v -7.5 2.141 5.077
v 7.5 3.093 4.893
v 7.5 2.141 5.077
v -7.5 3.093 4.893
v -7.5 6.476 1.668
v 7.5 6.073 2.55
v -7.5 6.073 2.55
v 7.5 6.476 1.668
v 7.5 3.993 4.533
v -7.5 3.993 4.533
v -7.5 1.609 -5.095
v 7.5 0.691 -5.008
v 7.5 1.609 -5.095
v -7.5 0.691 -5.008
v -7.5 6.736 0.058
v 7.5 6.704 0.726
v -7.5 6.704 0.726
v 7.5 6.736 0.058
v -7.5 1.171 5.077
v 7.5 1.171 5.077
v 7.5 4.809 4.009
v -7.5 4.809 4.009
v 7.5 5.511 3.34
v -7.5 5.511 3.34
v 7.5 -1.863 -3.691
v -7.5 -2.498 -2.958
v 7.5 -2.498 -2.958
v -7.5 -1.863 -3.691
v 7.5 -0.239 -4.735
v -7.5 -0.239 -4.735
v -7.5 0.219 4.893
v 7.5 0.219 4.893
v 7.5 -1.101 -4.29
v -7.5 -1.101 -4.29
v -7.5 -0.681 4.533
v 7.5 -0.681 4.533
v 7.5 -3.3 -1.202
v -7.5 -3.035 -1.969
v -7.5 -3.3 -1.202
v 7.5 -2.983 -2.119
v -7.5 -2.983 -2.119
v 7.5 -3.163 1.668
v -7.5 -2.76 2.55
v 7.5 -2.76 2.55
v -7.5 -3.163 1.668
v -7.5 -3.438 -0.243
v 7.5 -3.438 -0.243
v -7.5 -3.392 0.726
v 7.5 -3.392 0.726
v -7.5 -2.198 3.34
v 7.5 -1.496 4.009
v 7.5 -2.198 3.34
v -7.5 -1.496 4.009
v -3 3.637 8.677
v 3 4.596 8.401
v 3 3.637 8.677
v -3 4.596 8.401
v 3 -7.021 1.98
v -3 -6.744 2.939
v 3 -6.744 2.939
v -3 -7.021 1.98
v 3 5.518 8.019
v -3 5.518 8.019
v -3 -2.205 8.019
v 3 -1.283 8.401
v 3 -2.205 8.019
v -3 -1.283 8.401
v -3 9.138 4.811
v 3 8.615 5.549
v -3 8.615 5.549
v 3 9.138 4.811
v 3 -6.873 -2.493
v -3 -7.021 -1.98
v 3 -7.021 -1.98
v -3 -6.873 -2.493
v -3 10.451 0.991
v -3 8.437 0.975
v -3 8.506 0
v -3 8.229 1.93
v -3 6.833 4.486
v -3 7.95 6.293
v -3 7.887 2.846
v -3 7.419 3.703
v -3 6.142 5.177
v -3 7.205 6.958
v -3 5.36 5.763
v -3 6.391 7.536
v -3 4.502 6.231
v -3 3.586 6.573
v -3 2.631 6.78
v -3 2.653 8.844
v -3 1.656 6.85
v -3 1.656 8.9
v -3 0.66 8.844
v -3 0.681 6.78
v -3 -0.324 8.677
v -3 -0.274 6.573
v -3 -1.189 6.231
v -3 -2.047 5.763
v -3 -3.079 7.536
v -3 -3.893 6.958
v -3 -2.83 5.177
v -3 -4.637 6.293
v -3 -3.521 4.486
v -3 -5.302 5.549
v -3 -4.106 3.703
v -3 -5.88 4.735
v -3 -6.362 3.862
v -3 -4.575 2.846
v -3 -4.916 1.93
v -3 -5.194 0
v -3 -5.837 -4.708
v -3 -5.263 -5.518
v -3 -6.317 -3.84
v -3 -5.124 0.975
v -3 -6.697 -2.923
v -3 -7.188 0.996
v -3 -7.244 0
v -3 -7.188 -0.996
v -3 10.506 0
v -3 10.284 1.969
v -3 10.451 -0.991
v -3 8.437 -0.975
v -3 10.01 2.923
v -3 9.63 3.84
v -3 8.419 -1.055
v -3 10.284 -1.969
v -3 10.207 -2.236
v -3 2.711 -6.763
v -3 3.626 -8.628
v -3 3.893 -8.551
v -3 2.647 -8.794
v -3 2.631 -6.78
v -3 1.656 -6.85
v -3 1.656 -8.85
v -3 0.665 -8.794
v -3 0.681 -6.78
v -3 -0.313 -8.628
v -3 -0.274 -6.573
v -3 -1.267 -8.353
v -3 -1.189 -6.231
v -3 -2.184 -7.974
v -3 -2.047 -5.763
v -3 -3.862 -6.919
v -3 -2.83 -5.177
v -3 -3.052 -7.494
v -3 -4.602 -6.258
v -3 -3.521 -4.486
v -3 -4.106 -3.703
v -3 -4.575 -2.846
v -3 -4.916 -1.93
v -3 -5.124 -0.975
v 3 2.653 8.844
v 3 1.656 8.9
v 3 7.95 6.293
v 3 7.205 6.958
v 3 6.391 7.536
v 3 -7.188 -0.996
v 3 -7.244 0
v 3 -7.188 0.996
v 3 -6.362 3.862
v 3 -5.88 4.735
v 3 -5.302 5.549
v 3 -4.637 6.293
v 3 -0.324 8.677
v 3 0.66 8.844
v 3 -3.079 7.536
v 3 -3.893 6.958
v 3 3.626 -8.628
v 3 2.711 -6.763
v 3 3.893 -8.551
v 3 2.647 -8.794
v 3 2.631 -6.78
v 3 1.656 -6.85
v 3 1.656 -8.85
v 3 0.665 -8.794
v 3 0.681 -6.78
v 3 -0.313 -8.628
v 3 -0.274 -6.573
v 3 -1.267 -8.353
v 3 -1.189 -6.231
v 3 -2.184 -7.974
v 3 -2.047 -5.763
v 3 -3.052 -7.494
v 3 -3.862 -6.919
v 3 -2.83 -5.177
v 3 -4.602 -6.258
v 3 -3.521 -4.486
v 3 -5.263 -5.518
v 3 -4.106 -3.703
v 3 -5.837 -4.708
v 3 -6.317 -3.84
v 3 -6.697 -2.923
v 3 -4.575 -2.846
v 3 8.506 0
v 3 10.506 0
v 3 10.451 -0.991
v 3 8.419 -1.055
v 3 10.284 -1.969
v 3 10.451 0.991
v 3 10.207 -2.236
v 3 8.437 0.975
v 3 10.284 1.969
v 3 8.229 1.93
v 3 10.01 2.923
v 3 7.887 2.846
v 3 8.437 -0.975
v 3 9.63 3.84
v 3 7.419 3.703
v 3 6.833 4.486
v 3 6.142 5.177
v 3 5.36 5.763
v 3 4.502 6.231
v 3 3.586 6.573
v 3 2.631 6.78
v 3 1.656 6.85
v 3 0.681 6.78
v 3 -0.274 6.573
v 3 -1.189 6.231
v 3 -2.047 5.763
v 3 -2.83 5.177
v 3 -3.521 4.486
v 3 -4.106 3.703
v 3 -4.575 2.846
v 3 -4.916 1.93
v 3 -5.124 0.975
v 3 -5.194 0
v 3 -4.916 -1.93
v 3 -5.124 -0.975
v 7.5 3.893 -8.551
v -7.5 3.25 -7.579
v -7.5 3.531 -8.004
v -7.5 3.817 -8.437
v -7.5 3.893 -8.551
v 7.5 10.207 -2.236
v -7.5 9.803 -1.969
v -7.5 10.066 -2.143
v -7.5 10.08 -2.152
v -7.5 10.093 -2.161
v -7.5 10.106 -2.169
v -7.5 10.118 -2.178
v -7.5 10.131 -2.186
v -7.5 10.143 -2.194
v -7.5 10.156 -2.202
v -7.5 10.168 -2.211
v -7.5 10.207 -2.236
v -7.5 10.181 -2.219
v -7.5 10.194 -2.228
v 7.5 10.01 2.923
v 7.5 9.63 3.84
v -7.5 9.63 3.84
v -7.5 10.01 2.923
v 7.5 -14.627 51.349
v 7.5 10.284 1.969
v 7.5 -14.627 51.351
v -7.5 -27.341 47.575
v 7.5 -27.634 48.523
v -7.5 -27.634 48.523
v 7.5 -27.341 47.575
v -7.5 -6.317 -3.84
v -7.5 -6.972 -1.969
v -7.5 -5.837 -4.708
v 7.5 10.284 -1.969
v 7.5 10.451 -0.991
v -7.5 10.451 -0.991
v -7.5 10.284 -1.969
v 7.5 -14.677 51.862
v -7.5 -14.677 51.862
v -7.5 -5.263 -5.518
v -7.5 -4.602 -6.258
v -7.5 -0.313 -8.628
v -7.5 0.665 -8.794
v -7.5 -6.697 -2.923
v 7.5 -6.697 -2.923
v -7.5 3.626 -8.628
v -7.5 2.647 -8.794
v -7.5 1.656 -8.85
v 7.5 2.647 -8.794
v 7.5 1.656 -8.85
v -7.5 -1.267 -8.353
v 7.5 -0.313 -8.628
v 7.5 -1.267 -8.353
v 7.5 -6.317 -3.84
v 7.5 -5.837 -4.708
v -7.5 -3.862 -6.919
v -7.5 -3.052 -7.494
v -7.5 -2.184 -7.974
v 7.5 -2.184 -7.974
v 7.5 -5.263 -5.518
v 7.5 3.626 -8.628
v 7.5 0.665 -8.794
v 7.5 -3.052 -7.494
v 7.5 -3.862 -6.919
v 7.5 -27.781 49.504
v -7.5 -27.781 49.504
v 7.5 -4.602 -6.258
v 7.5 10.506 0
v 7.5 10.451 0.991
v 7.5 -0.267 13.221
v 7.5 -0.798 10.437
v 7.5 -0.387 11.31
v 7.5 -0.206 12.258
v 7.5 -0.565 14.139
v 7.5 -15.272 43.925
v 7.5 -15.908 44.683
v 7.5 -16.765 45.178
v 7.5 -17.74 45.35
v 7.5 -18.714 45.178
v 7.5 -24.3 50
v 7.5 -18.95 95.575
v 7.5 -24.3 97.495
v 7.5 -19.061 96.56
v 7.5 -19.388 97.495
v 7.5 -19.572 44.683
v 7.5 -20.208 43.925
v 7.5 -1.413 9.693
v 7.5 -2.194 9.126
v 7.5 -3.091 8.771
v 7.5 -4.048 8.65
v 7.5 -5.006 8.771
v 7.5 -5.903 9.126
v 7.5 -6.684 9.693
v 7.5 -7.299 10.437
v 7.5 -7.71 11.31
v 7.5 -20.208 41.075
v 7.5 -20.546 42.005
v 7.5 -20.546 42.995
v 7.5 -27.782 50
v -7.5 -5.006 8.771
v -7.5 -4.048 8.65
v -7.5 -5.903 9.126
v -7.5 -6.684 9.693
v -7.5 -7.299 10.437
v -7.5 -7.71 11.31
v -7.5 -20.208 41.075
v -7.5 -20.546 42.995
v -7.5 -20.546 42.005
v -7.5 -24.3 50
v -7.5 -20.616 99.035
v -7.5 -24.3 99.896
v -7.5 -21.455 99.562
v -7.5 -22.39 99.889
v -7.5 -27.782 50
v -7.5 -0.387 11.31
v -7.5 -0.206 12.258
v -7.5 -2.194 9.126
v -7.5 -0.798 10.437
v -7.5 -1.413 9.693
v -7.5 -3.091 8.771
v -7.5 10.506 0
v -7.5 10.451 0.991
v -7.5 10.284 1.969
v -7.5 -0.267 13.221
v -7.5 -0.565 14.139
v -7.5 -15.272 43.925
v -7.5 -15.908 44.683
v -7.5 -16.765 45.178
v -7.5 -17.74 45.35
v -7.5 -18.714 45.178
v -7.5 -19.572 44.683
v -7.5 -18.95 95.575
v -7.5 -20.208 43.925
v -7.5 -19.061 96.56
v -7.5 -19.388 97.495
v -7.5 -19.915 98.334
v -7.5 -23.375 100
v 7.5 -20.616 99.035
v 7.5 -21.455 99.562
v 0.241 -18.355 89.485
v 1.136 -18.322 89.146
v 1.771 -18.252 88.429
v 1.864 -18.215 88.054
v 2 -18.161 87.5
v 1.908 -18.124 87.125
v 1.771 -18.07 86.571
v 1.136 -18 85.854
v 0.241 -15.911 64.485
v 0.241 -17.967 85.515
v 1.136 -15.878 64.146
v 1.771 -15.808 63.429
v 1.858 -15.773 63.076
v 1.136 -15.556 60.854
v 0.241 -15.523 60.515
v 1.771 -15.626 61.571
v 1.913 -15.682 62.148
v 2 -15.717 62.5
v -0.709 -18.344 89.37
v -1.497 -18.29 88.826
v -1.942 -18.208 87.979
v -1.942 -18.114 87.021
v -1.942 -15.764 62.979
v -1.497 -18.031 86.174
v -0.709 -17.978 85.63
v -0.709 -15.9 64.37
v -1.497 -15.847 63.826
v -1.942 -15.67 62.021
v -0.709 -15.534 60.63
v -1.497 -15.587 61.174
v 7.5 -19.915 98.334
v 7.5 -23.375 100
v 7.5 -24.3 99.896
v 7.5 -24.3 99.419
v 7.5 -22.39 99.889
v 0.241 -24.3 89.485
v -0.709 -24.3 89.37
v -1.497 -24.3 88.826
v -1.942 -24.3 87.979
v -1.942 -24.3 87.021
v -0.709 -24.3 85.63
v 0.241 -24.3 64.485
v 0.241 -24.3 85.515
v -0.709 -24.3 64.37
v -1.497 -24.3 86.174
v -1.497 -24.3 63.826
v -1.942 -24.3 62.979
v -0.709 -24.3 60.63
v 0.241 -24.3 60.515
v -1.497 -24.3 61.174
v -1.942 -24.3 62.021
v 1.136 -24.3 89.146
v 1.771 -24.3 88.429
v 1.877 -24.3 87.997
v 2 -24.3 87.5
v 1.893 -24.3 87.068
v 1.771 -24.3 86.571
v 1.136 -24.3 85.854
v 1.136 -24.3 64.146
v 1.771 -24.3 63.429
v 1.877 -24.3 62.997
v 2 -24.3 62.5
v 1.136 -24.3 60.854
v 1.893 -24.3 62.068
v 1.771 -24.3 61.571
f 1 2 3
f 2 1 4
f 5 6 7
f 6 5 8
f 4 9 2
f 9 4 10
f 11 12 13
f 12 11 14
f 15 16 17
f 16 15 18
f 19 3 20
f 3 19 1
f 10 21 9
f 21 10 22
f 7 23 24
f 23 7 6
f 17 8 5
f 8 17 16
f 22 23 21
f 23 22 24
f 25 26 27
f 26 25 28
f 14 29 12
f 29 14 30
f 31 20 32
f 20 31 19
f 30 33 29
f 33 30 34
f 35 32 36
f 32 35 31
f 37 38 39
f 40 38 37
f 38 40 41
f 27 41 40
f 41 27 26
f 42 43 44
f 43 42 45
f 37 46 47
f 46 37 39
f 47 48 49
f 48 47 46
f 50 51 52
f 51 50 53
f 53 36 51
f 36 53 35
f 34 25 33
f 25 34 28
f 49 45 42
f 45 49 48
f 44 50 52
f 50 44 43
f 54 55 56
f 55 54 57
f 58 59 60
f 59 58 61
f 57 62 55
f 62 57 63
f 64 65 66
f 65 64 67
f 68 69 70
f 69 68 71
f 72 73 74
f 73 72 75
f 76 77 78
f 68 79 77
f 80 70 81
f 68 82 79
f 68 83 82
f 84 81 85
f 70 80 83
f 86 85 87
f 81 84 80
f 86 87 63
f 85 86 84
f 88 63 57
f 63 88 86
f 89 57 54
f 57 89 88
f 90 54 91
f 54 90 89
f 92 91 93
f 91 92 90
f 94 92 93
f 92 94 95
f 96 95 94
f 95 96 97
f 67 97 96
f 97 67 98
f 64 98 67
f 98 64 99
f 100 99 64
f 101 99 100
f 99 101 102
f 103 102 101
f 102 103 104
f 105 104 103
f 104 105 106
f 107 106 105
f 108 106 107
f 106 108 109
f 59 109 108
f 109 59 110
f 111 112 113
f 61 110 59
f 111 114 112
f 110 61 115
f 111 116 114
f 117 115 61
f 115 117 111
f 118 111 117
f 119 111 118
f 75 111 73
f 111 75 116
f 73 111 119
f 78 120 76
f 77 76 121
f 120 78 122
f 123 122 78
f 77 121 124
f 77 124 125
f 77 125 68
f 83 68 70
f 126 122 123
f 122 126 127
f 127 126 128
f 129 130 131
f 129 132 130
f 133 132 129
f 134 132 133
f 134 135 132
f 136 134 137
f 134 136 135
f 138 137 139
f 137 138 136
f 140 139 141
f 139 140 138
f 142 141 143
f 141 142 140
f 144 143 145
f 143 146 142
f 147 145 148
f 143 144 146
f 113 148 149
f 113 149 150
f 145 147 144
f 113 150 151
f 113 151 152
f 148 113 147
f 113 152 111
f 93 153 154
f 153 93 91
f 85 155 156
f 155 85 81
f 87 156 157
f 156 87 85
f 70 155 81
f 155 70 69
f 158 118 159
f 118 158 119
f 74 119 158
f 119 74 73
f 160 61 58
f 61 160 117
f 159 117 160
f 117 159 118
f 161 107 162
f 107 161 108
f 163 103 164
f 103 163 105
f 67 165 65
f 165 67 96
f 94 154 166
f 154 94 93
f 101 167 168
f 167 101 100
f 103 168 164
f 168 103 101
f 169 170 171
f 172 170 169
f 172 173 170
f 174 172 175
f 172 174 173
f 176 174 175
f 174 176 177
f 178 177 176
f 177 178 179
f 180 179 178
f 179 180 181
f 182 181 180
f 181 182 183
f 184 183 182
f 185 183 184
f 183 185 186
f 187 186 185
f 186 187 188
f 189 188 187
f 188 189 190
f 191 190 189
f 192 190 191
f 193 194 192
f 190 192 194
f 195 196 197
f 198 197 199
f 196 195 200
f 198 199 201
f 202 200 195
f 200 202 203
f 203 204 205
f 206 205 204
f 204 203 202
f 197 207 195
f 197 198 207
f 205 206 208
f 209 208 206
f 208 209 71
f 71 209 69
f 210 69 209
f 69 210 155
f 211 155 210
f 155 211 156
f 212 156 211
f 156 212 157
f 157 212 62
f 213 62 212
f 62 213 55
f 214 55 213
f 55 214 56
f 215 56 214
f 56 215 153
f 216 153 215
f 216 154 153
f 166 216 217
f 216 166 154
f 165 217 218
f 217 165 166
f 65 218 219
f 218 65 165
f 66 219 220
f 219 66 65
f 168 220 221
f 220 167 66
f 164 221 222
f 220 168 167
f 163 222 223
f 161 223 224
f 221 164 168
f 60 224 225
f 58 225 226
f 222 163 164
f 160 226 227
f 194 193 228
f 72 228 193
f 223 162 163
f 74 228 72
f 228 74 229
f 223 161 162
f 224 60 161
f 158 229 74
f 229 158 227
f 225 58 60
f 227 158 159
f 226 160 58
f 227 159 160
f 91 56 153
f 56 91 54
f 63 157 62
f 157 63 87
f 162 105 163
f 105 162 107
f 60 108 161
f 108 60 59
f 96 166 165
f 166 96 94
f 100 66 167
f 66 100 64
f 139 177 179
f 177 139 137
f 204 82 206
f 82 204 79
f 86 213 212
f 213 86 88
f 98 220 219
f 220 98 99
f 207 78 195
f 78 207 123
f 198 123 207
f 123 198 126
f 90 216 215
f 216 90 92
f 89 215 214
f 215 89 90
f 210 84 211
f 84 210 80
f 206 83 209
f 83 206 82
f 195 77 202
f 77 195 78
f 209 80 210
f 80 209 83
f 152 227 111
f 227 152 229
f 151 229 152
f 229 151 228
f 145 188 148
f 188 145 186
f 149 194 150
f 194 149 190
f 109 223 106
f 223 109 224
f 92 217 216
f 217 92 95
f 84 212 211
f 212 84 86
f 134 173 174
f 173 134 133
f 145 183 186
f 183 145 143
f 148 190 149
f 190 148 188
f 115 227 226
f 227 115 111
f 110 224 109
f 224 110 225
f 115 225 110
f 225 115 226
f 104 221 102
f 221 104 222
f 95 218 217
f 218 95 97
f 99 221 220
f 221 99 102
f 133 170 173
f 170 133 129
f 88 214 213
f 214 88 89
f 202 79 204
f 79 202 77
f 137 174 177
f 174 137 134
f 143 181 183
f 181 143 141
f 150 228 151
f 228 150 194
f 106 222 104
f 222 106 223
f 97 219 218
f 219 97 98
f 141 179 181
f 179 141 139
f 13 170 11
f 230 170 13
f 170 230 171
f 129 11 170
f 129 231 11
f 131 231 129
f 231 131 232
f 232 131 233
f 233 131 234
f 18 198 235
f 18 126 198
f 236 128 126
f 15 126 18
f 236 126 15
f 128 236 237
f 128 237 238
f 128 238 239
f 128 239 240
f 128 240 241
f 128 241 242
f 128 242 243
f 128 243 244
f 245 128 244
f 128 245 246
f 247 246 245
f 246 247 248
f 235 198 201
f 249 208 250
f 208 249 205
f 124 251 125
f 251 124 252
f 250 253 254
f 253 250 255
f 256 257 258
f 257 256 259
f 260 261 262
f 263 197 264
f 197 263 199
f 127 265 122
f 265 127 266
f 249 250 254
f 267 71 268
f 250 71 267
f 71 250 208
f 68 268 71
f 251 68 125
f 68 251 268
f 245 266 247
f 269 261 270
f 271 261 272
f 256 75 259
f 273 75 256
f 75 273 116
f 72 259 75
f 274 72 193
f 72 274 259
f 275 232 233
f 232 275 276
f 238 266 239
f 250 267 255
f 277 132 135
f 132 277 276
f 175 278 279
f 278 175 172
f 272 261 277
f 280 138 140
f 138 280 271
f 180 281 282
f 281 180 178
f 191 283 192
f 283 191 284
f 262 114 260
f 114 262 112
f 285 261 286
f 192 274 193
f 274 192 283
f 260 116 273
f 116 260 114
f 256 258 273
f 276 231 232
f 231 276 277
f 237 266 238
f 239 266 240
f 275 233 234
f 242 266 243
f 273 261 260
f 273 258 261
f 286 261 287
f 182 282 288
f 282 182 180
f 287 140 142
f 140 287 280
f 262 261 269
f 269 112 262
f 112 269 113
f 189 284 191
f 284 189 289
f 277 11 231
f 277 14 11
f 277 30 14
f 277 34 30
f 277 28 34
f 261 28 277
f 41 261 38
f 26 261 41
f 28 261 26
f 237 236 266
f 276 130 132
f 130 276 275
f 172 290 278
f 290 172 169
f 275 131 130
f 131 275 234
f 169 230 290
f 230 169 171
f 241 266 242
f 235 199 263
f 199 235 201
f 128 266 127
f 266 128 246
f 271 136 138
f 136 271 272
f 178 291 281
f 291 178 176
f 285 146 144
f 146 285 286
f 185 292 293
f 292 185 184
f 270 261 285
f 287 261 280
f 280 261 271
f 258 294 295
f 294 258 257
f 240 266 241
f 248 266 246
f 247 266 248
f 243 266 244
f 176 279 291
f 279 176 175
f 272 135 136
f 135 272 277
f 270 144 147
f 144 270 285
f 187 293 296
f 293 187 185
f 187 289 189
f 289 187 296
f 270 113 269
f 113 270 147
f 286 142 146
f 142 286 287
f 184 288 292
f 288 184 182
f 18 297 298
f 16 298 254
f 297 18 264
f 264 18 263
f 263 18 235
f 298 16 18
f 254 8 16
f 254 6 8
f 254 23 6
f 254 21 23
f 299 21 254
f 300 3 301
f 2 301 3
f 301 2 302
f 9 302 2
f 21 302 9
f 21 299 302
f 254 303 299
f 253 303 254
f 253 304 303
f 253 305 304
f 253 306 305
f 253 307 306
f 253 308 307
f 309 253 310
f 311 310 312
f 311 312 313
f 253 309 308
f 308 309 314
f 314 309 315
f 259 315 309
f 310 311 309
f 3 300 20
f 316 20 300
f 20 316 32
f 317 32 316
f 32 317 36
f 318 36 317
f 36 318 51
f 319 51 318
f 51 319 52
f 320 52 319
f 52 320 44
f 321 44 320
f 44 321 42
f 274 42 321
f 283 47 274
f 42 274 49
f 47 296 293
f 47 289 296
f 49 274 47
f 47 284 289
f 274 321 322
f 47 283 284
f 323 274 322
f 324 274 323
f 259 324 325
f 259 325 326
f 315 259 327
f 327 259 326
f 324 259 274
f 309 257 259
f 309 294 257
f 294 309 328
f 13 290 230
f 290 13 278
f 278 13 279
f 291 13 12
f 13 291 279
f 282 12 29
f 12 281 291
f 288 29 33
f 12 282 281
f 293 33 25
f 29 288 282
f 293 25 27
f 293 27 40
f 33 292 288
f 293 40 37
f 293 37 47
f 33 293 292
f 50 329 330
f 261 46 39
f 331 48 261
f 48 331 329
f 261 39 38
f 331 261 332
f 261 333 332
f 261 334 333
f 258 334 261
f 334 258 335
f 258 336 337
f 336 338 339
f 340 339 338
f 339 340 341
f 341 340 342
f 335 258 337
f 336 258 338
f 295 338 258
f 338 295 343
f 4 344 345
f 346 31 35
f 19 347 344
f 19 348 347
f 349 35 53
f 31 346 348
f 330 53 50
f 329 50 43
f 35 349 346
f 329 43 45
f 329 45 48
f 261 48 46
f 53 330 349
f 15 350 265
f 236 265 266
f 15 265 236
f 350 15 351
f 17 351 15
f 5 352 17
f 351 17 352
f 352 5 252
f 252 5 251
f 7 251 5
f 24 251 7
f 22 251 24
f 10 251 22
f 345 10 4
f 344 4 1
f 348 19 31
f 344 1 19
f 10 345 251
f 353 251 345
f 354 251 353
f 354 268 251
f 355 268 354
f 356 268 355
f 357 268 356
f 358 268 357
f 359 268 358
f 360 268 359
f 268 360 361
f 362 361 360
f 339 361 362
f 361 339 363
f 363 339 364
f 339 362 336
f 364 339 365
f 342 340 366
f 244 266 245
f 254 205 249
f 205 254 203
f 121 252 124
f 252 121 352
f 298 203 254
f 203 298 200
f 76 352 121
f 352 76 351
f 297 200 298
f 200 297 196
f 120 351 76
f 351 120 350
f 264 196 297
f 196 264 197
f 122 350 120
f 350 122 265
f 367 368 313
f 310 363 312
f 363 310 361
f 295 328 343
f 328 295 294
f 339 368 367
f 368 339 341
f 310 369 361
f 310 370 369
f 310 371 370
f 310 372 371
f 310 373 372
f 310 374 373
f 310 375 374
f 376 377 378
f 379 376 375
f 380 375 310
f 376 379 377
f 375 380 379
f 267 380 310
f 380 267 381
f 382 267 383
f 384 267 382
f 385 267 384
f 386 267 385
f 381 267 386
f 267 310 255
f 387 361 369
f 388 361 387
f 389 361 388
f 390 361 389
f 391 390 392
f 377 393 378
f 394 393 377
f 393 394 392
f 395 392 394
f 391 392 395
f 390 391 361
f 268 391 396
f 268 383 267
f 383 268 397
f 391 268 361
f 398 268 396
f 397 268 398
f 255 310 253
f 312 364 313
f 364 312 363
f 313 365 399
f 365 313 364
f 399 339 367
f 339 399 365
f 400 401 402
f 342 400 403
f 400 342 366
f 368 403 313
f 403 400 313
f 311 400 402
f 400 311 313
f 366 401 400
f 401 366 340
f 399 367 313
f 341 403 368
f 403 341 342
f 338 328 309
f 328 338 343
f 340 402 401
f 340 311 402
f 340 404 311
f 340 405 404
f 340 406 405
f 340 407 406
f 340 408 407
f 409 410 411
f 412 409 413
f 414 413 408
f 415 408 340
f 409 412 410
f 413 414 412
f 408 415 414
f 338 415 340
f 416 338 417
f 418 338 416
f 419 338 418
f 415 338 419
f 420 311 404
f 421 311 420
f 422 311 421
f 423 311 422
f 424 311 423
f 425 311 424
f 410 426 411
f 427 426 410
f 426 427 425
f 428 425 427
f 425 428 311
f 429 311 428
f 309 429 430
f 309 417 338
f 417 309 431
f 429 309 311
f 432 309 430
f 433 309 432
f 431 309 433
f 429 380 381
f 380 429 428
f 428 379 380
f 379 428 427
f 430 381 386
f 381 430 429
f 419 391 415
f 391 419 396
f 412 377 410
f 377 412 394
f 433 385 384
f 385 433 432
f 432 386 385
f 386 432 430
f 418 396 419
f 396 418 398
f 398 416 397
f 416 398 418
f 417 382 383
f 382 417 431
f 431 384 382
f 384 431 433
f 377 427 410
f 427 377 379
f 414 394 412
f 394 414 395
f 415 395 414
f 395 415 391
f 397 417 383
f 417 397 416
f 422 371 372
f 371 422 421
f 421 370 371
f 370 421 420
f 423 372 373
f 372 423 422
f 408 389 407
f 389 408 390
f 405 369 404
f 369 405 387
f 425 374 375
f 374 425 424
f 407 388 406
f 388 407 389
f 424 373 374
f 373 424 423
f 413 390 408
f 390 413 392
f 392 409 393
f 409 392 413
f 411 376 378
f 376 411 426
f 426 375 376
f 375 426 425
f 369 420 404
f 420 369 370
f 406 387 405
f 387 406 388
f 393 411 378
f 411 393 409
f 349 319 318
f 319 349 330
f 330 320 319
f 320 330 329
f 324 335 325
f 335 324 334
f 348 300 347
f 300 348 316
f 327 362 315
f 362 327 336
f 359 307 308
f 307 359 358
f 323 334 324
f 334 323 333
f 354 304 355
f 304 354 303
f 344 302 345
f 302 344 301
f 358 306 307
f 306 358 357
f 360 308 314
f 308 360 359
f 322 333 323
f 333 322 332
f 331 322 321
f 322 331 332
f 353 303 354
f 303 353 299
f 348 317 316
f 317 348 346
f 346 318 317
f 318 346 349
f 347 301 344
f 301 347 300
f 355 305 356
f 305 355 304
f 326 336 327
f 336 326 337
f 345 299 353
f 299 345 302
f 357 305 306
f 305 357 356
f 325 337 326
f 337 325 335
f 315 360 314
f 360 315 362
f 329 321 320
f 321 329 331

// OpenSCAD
$fs = 1;
$fa = 6;

rackTubeD = 9.7;
rackOD = [9.25 * 25.4 - rackTubeD, 12.0625 * 25.4 - rackTubeD];
basketOD = [11.875 * 25.4, 14 * 25.4, 50];
basketDelta = [basketOD[0] - rackOD[0], basketOD[1] - rackOD[1]];
boxWall = 3.5;
boxFloatZ = 50;
supportThick = 4;
module rackRod(l, inflate=0) {
    cylinder(d=rackTubeD+inflate, h=l, center=true);
}
module rackRodShort(l=rackOD[0], inflate=0) {
    rotate([0, 90, 0]) rackRod(l, inflate);
}
module rackRodLong(inflate=0) {
    rotate([90, 0, 0]) rackRod(rackOD[1], inflate);
}
module moveRackRight() {
    translate([0, rackOD[1]/2]) children();
}
module moveRackLeft() {
    translate([0, -rackOD[1]/2]) children();
}
module moveBoxRight() {
    translate([0, basketOD[1]/2]) children();
}
module moveBoxLeft(dist = 1) {
    translate([0, -dist * basketDelta[1]/2]) moveRackLeft() children();
}
module rack(inflate = 0) {
    moveRackRight() rackRodShort(inflate=inflate);
    moveRackLeft() rackRodShort(inflate=inflate);
    translate([rackOD[0]/2, 0]) rackRodLong(inflate=inflate);
    translate([-rackOD[0]/2, 0]) rackRodLong(inflate=inflate);
    translate([-rackOD[0]/2 - 25.4/2 - rackTubeD/2, 0]) {
        translate([0, 1.125 * 25.4 - rackTubeD/2]) rotate([0, 90, 0]) rackRod(25.4, inflate);
        translate([0, -(1.125 * 25.4 - rackTubeD/2)]) rotate([0, 90, 0]) rackRod(25.4, inflate);
        translate([-25.4/2, 0, 50]) {
            translate([0, 1.125 * 25.4 - rackTubeD/2]) rackRod(100, inflate);
            translate([0, -(1.125 * 25.4 - rackTubeD/2)]) rackRod(100, inflate);
        }
    }

}
module box(inflate=0) {
    translate([0,0,25 + boxFloatZ]) difference() {
        cube(size=basketOD, center=true);
        cube(size=[basketOD[0] - 2*boxWall - inflate, basketOD[1] - 2*boxWall - inflate, 51], center=true);
    }
}
module moveUpArm(dist = 1) {
    translate([0, dist * midSupportD/2, dist * boxFloatZ]) moveBoxLeft(dist) children();
}
supportD = rackTubeD + supportThick*2;
midSupportD = supportD * 0.75;
module support() {
    wide = 15;
    difference() {
        union() {
            hull() {
                moveRackLeft() rotate([0, 90]) cylinder(d=supportD, h=wide, center=true);
                moveUpArm() rotate([0, 90]) cylinder(d=midSupportD, h=wide, center=true);
            }
            hull() {
                moveUpArm() rotate([0, 90]) cylinder(d=midSupportD, h=wide, center=true);
                translate([0,supportD/4,boxFloatZ + basketOD[2] - supportD/4]) moveBoxLeft() rotate([0, 90]) cylinder(d=supportD/2, h=wide, center=true);
            }
        }
        box();
        rack(0.5);
        // screws to affix the basket
        translate([0,0,boxFloatZ + basketOD[2]/4]) moveBoxLeft() rotate([90,0,0]) cylinder(d=4, h=100, center=true);
        translate([0,0,boxFloatZ + 3 * basketOD[2]/4]) moveBoxLeft() rotate([90,0,0]) cylinder(d=4, h=100, center=true);

        moveRackLeft() {
            rotate([-135]) {
                hull() {
                    rackRodShort(25, inflate=-4);
                    translate([0,0,15]) rackRodShort(25, inflate=2);
                }
            }
            rotate([0, 90]) difference() {
                cylinder(d=supportD + 0.1, h=6, center=true);
                cylinder(d=supportD - 4, h=7, center=true);

            }
        }
        #hull() {
            moveUpArm(0.25) rotate([0, 90]) cylinder(d=rackTubeD - 2, h=wide+1, center=true);
            moveUpArm(0.85) rotate([0, 90]) cylinder(d=rackTubeD - 4, h=wide+1, center=true);

        }

    }
}


module screw(headD, nutFlat = 0, throughHoleD, threadD, throughLen = 0, threadLen = 0, headLen, nutLen) {
    // head
    translate([0, 0, -headLen]) cylinder(d=headD, h=headLen, center=false);
    // through hole
    cylinder(d=throughHoleD, h=throughLen, center=false);
    // through
    /*translate([0, 0, -throughLen]) cylinder(d=threadD, h=threadLen, center=false);*/
    translate([0, 0, throughLen])
        if (nutFlat > 0) {
            // nut
            cylinder(d=nutFlat/cos(180/6), h=nutLen, center=false, $fn=6);
        } else {
            // thread
            cylinder(d=threadD, h=threadLen, center=false);
        }
}
module m4PanHeadScrew(length = 20) {
    translate([-length/2, 0, 0]) rotate([0, 90, 0]) screw(
        headD = 9.3,
        headLen = 100,
        nutFlat = 7.25,
        throughHoleD = 5,
        nutLen = 100,
        throughLen = length
    );
}
!translate([0,150,0])
support();
rotate([0,0,180]) support();
translate([-(basketOD[1] - basketOD[0])/2,0,0]) rotate([0,0,90]) support();
#box();
